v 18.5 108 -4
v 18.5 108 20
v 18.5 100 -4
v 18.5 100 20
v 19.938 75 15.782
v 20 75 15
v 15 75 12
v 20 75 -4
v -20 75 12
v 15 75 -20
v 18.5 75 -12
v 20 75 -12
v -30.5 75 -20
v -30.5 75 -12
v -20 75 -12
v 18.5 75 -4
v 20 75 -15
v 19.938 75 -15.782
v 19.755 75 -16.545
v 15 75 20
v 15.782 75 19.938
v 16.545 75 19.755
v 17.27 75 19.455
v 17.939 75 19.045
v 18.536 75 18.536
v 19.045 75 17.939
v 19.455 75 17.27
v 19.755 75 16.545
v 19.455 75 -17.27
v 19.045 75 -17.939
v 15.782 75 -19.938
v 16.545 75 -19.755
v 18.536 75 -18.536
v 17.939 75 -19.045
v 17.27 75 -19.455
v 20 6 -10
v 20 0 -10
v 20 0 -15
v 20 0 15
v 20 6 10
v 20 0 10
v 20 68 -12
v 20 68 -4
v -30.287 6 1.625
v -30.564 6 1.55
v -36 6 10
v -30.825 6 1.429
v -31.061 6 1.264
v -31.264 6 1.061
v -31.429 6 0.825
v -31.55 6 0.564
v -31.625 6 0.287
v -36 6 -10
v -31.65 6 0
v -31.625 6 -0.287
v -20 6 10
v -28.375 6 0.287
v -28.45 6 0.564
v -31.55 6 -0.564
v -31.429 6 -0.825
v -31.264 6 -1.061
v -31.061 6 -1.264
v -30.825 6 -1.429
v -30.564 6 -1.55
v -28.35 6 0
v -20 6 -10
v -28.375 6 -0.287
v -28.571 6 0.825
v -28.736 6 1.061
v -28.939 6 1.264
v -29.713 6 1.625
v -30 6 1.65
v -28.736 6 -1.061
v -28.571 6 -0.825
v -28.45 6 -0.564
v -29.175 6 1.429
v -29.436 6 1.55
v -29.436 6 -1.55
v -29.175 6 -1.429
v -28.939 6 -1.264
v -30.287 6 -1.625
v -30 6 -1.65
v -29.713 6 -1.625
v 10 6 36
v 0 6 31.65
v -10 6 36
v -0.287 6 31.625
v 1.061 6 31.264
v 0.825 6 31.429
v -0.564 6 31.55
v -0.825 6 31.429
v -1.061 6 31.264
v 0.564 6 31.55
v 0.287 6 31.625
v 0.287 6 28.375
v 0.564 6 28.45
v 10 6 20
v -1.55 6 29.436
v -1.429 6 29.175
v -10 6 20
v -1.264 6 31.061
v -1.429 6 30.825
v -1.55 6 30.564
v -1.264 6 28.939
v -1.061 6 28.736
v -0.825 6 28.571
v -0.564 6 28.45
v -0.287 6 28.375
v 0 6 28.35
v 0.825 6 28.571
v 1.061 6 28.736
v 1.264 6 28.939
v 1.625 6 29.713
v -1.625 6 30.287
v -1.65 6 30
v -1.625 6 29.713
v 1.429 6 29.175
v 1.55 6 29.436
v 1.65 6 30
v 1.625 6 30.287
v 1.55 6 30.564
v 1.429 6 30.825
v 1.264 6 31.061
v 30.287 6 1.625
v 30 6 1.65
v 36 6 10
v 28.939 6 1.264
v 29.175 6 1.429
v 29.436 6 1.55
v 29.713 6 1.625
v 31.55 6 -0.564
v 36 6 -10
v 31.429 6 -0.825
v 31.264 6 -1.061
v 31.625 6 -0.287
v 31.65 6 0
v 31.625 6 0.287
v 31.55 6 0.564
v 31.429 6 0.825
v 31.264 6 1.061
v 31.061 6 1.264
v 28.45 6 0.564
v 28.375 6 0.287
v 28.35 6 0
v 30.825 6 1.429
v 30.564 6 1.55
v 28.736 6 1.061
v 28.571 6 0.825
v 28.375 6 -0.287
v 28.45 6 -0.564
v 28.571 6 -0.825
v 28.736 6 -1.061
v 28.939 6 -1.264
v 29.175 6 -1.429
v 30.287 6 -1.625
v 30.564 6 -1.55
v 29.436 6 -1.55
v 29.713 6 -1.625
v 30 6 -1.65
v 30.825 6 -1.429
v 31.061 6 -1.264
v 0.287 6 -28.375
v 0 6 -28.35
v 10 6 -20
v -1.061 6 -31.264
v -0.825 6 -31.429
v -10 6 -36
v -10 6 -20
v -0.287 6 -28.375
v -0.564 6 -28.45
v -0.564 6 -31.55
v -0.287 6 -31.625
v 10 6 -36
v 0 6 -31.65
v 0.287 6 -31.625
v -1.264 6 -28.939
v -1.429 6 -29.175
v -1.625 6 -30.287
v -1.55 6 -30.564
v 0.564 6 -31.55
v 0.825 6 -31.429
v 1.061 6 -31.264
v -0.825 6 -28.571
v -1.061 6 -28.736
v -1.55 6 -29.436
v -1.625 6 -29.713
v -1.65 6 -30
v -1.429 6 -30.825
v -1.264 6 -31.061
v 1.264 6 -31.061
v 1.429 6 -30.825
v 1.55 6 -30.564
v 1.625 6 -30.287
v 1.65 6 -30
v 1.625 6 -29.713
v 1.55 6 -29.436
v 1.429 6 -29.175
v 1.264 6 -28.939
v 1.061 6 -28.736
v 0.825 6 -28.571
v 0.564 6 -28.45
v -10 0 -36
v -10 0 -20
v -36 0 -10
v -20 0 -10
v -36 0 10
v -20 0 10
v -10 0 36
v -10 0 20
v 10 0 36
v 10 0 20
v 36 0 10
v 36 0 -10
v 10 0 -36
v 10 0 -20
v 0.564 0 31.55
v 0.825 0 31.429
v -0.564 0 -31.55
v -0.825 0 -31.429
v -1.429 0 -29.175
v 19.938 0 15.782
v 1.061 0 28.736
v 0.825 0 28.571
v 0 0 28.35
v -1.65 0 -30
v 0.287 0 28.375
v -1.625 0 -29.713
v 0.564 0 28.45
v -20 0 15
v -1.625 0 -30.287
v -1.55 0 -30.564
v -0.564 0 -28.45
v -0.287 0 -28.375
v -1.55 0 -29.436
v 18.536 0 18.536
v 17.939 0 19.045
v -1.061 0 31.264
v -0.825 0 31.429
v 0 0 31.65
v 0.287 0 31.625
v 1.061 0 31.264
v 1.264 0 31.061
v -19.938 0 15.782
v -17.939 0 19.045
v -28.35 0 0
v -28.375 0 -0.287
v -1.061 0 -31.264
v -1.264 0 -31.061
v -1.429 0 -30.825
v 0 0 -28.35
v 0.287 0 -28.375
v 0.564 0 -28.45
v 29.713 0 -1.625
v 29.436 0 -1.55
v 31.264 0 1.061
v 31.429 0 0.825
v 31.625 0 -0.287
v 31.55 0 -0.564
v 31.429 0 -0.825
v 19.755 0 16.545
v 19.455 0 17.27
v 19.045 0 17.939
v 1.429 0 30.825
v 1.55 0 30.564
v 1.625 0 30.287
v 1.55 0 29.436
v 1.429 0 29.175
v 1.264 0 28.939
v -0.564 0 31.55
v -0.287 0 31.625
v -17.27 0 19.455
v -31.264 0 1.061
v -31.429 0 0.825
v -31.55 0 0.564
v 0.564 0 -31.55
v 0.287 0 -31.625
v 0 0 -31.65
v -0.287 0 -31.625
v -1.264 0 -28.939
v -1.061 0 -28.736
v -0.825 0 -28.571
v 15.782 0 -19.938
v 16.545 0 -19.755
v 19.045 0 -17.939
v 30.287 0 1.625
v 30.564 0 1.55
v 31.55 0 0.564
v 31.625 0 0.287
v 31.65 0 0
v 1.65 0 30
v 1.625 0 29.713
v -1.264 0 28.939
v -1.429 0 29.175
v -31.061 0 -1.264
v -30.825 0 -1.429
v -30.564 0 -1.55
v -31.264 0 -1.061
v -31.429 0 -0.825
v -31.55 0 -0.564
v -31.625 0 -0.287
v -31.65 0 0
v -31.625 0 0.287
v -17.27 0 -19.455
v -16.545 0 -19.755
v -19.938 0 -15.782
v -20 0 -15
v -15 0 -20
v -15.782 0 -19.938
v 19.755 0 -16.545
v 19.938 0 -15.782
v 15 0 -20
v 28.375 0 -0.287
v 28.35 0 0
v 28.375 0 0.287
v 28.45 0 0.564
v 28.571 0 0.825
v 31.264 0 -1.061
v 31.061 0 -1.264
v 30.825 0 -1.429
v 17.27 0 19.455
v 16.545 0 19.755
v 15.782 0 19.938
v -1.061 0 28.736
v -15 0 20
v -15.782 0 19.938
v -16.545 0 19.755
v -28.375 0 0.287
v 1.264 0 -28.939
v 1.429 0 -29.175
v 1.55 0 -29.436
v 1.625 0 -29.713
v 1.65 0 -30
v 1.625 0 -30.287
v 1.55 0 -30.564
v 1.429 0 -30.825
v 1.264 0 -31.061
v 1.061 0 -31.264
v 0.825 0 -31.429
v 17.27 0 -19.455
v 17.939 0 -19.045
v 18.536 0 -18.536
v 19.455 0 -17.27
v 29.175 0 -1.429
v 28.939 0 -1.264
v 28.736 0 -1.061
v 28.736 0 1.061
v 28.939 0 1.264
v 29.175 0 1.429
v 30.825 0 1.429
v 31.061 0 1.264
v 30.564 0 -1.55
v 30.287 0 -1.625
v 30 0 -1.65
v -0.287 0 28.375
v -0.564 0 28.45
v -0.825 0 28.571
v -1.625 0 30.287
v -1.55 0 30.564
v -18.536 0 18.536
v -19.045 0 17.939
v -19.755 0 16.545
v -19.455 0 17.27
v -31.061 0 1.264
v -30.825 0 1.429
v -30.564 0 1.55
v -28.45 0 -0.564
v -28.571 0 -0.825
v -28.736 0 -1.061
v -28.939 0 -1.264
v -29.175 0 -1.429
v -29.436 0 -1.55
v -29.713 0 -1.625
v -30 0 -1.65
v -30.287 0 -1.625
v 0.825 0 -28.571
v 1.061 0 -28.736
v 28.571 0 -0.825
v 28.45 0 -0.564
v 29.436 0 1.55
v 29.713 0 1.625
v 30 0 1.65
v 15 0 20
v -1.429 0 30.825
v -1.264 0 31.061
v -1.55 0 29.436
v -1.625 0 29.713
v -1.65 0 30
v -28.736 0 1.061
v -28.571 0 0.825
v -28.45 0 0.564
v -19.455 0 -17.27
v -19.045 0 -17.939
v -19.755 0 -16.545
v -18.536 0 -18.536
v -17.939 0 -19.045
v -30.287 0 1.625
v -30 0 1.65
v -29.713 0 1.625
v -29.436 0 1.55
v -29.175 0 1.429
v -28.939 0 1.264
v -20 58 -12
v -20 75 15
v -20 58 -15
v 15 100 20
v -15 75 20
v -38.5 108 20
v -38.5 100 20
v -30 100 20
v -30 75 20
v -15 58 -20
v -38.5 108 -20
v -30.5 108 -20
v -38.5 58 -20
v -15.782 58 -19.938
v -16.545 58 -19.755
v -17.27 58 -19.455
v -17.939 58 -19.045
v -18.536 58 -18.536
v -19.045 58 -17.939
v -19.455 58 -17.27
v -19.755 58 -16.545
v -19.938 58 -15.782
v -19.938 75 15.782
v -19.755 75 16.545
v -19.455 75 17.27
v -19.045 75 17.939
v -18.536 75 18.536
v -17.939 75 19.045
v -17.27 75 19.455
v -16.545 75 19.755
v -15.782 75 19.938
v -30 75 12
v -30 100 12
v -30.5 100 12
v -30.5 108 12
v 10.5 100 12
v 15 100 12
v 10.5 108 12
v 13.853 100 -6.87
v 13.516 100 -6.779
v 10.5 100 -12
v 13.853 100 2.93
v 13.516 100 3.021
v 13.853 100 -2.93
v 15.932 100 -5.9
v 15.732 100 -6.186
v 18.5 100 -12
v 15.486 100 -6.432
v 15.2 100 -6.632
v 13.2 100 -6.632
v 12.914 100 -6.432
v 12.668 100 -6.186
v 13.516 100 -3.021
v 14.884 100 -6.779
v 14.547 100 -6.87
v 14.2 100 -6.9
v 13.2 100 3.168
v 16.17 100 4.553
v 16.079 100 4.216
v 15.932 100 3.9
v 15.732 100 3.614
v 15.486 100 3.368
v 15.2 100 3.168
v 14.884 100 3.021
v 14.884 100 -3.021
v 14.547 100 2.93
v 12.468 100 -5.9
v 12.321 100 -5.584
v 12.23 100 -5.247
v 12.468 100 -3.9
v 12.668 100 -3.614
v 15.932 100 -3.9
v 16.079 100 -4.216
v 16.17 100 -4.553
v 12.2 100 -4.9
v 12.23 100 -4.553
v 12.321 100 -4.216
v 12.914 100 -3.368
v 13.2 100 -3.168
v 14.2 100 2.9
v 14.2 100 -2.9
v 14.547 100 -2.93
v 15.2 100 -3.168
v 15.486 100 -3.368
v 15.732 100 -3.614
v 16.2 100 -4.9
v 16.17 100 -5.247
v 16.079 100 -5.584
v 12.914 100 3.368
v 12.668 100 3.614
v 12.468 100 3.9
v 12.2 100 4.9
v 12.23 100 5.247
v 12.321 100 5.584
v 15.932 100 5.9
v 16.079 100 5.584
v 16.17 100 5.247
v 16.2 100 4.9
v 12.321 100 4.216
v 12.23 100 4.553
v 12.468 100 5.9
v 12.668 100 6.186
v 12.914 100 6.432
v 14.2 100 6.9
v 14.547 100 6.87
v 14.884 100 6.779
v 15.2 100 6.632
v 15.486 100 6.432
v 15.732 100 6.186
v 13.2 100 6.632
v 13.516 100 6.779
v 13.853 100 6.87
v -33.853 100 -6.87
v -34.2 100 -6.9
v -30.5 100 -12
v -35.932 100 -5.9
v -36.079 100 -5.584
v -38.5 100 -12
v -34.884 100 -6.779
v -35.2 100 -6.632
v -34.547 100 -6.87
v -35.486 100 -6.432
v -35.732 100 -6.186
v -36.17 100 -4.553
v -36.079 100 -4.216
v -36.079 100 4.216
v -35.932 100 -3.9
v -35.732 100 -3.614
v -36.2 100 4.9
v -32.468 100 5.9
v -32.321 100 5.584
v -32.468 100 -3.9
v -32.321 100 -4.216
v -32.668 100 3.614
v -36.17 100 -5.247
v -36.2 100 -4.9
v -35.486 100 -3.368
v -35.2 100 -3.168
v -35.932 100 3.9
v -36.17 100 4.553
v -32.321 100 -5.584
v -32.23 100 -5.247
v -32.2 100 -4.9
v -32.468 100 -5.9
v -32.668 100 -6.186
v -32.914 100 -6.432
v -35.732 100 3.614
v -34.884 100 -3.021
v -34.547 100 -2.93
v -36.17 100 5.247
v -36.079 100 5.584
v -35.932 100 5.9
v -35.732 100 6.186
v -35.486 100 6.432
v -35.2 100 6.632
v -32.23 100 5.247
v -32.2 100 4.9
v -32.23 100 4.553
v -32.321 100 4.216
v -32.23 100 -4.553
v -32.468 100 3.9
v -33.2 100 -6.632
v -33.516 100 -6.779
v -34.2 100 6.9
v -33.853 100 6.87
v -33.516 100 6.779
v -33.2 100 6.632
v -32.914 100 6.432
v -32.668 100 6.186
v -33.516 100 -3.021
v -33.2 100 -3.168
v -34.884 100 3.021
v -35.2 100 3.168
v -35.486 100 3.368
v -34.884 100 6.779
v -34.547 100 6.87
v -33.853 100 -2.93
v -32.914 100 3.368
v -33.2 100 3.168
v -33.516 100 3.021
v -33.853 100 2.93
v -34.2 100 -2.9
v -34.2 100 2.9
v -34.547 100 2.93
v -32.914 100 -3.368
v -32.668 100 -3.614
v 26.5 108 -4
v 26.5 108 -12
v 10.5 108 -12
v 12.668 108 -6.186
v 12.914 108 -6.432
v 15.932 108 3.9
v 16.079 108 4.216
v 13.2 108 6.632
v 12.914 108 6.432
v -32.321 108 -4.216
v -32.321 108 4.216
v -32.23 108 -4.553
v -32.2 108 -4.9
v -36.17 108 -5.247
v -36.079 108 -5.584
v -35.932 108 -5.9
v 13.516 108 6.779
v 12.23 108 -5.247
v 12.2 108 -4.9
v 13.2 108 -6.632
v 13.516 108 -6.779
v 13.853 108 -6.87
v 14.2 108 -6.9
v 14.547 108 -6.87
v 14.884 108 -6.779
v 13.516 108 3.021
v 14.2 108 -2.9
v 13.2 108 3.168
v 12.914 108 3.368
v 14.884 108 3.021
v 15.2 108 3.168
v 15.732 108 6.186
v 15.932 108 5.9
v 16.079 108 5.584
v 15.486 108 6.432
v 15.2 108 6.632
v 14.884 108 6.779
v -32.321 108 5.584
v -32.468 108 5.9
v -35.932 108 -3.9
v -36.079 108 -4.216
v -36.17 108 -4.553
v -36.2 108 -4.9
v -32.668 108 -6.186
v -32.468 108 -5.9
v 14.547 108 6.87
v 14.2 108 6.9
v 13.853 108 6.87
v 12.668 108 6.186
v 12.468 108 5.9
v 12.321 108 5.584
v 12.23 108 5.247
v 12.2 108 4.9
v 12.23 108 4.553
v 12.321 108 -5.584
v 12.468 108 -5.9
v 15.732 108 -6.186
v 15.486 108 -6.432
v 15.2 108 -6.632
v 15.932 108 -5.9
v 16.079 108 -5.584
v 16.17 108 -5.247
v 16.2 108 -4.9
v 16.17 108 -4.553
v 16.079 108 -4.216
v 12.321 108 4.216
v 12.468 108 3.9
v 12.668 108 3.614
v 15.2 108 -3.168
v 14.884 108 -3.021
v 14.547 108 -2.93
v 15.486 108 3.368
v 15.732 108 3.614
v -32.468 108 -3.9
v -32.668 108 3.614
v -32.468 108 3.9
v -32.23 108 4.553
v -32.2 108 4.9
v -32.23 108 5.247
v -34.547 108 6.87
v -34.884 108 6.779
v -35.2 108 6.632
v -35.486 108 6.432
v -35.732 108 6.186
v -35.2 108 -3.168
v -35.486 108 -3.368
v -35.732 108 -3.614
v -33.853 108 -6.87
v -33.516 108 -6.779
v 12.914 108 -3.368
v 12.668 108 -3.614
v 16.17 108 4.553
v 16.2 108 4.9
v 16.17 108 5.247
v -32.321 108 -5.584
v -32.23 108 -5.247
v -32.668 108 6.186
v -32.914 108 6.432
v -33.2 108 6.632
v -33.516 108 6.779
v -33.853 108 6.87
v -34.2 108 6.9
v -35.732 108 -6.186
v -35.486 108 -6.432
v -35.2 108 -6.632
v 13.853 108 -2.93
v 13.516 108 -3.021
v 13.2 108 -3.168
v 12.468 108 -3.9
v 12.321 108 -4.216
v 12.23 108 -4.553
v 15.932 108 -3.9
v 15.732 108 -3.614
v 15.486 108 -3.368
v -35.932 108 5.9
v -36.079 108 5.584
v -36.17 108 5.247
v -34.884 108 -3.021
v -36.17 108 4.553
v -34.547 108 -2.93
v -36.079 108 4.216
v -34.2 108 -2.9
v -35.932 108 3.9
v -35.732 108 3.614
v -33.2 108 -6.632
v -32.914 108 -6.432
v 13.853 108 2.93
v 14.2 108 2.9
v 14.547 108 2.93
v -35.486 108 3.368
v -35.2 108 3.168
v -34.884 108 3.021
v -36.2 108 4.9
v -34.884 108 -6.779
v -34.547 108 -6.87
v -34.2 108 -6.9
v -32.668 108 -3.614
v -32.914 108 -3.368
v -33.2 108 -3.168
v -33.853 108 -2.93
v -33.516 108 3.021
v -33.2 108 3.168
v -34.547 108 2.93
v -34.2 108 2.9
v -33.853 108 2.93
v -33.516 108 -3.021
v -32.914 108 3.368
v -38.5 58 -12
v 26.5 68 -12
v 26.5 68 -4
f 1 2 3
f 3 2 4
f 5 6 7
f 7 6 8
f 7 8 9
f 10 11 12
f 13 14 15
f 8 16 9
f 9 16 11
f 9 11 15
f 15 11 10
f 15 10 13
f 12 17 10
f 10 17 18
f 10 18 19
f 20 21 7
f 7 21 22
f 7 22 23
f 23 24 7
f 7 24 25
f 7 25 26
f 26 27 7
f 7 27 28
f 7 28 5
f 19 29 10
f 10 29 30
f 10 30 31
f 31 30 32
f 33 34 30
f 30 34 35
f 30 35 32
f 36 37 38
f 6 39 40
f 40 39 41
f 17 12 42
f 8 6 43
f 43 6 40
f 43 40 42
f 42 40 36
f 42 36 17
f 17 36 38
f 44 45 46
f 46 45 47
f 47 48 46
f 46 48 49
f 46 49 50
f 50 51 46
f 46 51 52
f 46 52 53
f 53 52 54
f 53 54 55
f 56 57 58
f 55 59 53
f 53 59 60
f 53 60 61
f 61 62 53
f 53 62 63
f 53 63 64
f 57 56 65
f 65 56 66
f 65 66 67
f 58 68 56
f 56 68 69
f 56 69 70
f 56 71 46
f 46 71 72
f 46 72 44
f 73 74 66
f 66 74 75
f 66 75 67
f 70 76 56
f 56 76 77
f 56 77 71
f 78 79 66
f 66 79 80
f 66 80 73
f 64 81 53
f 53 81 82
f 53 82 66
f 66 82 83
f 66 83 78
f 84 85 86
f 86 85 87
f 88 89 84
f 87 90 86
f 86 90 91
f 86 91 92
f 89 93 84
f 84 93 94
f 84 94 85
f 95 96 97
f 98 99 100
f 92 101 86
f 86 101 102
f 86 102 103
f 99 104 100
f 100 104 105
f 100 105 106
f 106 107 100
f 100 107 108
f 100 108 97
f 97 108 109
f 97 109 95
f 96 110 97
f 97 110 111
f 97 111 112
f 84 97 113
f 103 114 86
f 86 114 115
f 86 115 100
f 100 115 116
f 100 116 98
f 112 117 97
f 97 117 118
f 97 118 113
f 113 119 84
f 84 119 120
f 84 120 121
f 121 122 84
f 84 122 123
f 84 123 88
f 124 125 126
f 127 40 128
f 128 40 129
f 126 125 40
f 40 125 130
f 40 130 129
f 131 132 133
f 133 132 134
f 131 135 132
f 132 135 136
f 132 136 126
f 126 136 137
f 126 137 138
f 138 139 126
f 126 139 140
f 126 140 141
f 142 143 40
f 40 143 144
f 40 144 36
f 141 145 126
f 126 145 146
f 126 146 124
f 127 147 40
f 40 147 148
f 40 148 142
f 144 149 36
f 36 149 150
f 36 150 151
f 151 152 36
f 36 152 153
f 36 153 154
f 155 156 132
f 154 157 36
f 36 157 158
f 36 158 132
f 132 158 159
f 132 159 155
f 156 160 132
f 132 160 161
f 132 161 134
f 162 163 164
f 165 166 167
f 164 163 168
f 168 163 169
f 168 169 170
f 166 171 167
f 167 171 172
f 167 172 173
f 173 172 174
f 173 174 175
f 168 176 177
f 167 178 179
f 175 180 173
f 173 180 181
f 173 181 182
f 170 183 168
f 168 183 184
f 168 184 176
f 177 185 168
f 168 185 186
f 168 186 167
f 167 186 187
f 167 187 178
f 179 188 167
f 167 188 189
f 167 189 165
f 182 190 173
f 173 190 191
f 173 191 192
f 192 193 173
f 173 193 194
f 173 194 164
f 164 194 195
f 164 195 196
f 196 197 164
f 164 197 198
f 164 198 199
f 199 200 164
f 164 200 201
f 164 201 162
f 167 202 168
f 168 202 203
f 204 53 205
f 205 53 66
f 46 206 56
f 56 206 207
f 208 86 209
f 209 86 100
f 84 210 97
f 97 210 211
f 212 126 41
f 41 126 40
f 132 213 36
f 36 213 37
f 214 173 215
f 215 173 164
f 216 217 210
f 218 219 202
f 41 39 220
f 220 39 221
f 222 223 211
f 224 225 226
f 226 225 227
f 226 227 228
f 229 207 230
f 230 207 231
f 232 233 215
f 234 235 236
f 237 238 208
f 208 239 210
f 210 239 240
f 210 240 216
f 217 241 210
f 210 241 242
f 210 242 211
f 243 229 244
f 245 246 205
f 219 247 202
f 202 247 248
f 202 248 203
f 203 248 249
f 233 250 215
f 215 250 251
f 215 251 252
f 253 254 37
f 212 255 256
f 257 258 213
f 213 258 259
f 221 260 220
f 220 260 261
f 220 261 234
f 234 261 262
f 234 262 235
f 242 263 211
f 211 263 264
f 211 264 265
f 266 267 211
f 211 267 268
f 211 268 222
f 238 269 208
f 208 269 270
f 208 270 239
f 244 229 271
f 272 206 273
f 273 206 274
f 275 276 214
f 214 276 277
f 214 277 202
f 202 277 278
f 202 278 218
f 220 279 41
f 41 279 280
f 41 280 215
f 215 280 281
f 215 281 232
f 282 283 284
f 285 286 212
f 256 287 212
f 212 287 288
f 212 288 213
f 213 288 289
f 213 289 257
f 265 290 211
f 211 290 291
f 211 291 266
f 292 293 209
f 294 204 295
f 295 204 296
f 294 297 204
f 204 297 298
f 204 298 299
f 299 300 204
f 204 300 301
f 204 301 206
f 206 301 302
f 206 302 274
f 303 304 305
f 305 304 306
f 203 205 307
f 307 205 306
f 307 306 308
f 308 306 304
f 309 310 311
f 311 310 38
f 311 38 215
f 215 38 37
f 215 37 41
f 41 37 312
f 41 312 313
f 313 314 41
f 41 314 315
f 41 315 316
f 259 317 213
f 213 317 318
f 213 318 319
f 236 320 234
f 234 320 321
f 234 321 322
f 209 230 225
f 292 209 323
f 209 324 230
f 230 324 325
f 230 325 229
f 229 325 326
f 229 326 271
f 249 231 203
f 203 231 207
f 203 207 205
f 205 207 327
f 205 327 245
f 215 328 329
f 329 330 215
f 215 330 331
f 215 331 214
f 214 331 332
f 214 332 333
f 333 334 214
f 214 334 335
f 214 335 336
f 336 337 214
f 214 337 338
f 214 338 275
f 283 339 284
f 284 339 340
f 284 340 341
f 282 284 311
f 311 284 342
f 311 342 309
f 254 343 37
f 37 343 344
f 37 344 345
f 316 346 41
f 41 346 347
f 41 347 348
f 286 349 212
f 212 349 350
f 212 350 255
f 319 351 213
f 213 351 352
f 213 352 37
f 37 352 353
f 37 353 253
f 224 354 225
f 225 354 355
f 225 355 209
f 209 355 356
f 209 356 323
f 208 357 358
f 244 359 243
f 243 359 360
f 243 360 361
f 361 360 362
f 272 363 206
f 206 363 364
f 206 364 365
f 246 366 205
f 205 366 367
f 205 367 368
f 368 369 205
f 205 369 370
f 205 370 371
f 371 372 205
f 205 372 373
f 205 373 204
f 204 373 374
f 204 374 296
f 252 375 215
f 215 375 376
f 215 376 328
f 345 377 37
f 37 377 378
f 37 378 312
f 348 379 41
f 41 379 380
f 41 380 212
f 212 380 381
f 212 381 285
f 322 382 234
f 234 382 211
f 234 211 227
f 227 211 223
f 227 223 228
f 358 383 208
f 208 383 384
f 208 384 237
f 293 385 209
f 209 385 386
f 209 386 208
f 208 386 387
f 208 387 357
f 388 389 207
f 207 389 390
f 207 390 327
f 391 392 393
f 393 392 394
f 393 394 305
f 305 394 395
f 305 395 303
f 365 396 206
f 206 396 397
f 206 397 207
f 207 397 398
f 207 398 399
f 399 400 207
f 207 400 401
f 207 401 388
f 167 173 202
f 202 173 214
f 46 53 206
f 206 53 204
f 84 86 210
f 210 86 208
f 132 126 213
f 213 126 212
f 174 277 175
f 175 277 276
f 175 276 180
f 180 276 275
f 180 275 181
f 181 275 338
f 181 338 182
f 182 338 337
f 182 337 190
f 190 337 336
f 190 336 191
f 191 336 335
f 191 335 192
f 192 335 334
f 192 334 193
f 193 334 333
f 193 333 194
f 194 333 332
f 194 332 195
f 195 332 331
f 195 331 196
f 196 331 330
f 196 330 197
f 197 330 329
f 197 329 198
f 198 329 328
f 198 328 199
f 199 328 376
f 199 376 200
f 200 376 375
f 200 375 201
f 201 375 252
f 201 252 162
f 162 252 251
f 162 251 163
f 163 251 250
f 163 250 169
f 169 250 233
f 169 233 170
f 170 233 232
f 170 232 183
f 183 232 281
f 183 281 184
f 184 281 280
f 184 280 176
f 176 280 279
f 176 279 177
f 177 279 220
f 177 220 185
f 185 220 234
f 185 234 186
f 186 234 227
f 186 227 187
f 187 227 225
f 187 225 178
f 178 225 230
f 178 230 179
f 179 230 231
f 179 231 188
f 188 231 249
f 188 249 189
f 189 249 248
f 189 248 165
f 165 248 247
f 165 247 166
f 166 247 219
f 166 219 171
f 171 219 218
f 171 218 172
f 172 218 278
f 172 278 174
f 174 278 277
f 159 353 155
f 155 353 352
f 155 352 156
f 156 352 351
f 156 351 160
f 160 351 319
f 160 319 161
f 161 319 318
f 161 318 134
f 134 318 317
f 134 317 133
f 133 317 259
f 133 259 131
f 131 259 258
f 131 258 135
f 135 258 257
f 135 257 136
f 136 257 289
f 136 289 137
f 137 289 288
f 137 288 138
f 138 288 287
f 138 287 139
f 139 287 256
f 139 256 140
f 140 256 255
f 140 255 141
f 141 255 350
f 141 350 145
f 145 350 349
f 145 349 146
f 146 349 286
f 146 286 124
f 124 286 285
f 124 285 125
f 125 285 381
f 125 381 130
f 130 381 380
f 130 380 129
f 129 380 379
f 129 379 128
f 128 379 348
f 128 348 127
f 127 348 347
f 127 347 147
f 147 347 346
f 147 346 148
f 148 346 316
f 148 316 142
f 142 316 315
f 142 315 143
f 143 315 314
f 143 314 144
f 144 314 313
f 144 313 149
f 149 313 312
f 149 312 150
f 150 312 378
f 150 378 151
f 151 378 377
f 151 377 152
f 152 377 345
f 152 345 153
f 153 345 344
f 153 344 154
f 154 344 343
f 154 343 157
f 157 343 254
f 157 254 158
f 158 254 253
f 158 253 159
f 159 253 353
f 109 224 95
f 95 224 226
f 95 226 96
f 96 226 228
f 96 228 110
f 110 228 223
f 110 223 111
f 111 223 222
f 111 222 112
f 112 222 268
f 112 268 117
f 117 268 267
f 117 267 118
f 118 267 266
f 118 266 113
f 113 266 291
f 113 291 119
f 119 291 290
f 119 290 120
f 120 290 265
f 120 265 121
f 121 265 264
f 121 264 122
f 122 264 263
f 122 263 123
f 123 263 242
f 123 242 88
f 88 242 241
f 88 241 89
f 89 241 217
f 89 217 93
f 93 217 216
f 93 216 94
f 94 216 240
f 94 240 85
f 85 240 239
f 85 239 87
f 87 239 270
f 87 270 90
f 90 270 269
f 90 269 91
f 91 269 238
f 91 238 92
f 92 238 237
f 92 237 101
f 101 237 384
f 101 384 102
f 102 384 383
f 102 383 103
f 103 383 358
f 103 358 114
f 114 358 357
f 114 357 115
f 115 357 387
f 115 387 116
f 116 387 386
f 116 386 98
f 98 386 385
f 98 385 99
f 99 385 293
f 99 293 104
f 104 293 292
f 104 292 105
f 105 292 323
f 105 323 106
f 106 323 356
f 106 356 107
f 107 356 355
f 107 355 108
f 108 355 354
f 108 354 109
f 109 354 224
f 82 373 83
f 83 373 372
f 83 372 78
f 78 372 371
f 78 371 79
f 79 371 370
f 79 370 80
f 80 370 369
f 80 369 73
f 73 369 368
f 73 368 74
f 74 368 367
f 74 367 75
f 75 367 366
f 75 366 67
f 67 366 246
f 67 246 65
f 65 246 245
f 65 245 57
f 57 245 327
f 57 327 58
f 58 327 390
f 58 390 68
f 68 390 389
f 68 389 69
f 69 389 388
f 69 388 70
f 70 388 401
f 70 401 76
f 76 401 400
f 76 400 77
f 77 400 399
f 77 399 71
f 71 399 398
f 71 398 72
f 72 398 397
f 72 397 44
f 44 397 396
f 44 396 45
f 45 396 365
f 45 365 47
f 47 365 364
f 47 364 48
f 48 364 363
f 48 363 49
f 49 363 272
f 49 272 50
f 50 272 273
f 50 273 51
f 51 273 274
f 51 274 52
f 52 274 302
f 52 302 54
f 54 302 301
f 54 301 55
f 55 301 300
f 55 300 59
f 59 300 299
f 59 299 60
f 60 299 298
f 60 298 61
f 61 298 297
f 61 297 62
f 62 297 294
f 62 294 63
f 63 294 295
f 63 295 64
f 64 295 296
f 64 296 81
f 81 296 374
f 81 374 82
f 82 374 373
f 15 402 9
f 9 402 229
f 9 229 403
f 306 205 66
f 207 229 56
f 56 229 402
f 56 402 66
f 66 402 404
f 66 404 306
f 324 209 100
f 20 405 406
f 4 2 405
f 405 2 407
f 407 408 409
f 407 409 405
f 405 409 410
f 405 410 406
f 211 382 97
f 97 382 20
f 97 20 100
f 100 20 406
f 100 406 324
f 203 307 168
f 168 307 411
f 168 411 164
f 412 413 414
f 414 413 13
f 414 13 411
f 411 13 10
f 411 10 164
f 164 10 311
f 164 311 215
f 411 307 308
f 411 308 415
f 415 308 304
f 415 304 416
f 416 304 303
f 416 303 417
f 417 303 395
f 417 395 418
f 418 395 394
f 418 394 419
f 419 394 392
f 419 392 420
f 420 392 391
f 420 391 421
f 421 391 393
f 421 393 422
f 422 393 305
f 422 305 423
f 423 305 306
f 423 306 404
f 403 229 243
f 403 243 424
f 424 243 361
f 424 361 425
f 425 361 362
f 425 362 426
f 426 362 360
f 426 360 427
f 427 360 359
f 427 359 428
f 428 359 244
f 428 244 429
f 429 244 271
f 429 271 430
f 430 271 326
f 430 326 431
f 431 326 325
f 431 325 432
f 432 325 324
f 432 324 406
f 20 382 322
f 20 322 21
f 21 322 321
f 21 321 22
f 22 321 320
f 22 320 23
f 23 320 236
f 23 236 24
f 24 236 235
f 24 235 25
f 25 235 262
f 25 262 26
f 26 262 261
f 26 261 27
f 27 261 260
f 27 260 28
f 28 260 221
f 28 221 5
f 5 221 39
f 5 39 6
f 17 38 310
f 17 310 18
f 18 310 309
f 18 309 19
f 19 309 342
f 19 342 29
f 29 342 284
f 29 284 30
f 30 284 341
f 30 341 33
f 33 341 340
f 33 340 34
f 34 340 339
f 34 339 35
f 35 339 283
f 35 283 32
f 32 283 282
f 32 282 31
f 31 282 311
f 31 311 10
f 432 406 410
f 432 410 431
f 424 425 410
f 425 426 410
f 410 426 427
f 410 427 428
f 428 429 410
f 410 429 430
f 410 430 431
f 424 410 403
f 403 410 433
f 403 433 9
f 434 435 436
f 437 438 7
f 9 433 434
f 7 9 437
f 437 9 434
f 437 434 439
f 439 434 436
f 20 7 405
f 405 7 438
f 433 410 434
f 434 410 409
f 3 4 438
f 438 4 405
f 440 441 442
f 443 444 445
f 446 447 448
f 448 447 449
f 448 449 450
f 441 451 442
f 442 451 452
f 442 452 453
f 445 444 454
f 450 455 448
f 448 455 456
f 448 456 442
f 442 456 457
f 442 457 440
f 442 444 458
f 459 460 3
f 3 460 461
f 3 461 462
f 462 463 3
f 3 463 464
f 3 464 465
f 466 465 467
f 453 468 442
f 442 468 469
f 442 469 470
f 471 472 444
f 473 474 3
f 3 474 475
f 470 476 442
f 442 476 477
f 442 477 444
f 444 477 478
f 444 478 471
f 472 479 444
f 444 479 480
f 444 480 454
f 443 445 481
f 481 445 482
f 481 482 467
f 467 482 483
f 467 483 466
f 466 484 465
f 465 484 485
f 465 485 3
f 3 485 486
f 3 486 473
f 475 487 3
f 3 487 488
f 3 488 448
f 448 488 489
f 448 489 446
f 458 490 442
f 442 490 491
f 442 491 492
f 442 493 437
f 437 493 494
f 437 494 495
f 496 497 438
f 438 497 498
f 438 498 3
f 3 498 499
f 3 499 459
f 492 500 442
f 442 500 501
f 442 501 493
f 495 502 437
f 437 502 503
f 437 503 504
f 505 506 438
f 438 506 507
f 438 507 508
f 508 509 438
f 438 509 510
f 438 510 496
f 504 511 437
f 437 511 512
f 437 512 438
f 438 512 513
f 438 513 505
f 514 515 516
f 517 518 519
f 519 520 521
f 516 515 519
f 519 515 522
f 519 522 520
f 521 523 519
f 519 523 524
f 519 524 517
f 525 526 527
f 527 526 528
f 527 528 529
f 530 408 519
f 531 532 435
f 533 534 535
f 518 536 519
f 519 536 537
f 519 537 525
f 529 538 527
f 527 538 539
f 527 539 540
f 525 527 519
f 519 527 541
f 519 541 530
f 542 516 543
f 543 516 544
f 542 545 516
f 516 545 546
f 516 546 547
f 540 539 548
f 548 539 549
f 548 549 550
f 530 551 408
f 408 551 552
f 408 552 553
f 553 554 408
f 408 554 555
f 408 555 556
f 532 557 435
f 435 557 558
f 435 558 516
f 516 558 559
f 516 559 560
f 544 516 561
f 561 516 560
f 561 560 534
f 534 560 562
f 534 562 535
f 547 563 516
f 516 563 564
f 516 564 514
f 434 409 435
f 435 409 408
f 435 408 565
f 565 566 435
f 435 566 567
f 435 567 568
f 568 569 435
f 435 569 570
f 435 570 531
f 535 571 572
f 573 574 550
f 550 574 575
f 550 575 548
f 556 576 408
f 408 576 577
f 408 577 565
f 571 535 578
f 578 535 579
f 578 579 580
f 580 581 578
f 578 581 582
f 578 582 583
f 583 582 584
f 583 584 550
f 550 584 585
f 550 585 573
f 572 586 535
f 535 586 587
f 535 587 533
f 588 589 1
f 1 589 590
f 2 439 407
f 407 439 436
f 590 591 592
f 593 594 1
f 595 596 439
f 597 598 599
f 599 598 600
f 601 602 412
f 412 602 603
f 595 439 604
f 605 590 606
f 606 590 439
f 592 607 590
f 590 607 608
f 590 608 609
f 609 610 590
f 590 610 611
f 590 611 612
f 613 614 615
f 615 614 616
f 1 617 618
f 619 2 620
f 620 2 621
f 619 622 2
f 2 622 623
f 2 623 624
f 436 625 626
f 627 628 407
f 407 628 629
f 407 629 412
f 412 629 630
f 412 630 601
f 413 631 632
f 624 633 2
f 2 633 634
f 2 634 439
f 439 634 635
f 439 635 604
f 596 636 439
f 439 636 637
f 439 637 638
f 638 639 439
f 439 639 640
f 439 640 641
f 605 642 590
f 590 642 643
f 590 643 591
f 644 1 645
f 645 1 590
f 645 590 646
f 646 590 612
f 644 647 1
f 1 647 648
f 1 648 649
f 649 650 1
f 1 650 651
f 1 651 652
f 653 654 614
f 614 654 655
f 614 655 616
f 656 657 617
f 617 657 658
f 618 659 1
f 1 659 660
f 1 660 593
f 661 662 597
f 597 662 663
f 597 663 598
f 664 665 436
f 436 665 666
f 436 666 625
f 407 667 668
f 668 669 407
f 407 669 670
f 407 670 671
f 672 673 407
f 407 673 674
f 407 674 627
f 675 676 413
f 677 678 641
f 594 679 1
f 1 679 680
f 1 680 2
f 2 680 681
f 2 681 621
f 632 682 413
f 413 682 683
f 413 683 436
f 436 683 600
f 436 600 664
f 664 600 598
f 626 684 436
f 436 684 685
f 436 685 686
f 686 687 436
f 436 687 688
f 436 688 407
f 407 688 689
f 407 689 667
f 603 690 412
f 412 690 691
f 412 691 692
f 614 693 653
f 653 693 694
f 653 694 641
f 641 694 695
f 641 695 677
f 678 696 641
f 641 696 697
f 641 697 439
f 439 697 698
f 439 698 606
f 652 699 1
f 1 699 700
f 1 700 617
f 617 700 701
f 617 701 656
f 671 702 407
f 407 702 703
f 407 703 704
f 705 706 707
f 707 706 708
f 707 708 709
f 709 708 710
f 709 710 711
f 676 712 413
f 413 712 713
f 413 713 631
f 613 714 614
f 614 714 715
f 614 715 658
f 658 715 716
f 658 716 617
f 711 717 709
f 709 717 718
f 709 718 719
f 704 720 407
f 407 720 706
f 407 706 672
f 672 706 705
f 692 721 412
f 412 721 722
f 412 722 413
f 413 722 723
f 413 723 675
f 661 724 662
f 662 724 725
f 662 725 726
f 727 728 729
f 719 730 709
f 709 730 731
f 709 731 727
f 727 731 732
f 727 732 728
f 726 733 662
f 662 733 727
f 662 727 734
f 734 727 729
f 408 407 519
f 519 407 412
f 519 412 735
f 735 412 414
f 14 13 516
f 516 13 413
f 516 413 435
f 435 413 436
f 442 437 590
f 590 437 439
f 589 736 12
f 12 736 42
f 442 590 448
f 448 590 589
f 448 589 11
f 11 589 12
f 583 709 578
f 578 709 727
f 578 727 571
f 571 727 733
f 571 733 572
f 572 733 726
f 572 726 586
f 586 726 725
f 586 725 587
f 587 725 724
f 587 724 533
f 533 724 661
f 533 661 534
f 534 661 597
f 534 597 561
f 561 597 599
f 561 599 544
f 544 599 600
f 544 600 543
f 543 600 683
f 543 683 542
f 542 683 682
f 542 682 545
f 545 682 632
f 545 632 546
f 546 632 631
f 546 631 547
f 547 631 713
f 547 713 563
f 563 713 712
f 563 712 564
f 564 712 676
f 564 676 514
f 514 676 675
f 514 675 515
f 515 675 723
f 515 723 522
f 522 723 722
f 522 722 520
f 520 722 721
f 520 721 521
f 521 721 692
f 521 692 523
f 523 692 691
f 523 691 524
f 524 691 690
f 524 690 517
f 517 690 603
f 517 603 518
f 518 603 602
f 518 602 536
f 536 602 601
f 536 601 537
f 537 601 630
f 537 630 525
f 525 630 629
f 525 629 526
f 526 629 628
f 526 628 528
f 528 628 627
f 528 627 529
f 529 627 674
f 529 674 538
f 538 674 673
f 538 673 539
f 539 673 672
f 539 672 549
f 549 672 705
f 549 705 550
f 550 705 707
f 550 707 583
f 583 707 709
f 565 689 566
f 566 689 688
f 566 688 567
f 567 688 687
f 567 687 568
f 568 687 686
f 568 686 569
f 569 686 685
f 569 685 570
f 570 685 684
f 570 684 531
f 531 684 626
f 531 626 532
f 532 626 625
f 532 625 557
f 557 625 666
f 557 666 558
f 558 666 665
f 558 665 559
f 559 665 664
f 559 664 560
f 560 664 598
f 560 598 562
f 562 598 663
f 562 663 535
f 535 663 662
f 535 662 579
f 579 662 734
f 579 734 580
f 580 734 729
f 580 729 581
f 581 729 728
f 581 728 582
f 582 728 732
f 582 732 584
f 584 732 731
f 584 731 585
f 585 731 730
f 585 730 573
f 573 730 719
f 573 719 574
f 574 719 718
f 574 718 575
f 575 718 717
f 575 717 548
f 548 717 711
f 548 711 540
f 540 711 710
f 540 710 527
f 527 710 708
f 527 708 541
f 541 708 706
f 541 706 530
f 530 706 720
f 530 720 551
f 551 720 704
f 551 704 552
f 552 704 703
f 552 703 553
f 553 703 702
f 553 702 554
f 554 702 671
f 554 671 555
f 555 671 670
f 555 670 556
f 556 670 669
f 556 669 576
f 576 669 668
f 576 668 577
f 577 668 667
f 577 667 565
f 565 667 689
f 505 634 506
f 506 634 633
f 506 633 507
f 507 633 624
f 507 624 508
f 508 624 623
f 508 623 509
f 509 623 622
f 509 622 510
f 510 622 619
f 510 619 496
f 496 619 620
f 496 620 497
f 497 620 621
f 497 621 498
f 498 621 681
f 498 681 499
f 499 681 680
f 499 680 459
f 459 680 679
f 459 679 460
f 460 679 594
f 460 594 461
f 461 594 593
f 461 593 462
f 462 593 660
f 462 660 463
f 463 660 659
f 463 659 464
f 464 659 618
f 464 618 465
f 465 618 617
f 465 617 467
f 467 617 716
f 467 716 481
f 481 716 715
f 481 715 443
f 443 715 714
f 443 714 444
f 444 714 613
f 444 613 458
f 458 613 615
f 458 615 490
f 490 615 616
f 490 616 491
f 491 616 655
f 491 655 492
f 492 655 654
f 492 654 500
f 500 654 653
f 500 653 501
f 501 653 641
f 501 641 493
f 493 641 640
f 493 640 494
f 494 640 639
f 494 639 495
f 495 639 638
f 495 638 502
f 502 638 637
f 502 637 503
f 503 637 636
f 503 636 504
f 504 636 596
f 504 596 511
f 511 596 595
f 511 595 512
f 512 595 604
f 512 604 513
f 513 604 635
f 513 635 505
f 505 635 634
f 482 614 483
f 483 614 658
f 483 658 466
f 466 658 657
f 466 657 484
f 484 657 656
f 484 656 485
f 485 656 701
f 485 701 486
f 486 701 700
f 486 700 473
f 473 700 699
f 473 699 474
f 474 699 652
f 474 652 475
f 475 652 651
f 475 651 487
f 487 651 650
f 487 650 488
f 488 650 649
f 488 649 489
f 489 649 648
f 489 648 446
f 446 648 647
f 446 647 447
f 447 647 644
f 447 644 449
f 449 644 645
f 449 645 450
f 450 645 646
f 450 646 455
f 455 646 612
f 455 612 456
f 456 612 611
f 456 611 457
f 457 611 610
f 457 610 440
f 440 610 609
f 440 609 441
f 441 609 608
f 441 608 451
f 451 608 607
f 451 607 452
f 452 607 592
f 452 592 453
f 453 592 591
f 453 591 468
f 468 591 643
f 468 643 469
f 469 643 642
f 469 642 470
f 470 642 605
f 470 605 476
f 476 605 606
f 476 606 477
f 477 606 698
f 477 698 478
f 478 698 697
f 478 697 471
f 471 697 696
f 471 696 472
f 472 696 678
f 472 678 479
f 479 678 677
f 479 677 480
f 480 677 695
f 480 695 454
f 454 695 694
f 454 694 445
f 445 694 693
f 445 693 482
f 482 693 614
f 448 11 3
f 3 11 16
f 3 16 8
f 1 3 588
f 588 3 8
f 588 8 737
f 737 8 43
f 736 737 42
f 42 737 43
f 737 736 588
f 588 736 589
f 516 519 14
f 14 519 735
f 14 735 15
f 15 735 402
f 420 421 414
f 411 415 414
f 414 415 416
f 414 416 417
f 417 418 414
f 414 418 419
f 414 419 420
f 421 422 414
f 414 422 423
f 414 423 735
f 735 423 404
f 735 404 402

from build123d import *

# Parameters (mm, degrees)
SKETCH_1_R      = 1.65
EXTRUDE_1_DEPTH = 6
EXTRUDE_2_DEPTH = 75
EXTRUDE_START   = 25
SKETCH_3_R      = 2
EXTRUDE_3_DEPTH = 8
EXTRUDE_4_REACH = 93.669
SKETCH_5_W      = 45
SKETCH_5_H      = 8
EXTRUDE_START_2 = 33
SKETCH_6_W      = 8
SKETCH_6_H      = 8
EXTRUDE_5_DEPTH = 40
SKETCH_7_W      = 8
SKETCH_7_H      = 8
EXTRUDE_6_DEPTH = 50
SKETCH_8_W      = 8
SKETCH_8_H      = 17
EXTRUDE_7_DEPTH = 40


with BuildPart() as part:
    # 草图1 → 凸台-拉伸1 (new body)
    with BuildSketch(Plane(origin=(0, 0, 0), x_dir=(1, 0, 0), z_dir=(0, 1, 0))):
        Polygon((-10, 36), (-10, 10), (-36, 10), (-36, -10), (-10, -10), (-10, -36), (10, -36), (10, -10), (36, -10), (36, 10), (10, 10), (10, 36), align=None)
        with Locations(Location((0, 30, 0), (0, 0, 270))):
            Circle(SKETCH_1_R, mode=Mode.SUBTRACT)
        with Locations(Location((30, 0, 0), (0, 0, 270))):
            Circle(SKETCH_1_R, mode=Mode.SUBTRACT)
        with Locations(Location((0, -30, 0), (0, 0, 270))):
            Circle(SKETCH_1_R, mode=Mode.SUBTRACT)
        with Locations(Location((-30, 0, 0), (0, 0, 270))):
            Circle(SKETCH_1_R, mode=Mode.SUBTRACT)
    extrude(amount=EXTRUDE_1_DEPTH)

    # 草图2 → 凸台-拉伸2 (add)
    with BuildSketch(Plane(origin=(0, 0, 0), x_dir=(1, 0, 0), z_dir=(0, 1, 0))):
        with BuildLine():
            Line((-15, 20), (15, 20))
            ThreePointArc((15, 20), (18.535533906, 18.535533906), (20, 15))
            Line((20, 15), (20, -15))
            ThreePointArc((20, -15), (18.535533906, -18.535533906), (15, -20))
            Line((15, -20), (-15, -20))
            ThreePointArc((-15, -20), (-18.535533906, -18.535533906), (-20, -15))
            Line((-20, -15), (-20, 15))
            ThreePointArc((-20, 15), (-18.535533906, 18.535533906), (-15, 20))
        make_face()
    extrude(amount=EXTRUDE_2_DEPTH)


with BuildPart() as body_2:
    # 草图3 → 凸台-拉伸3 (new body)
    with BuildSketch(Plane(origin=(0, 75, 0), x_dir=(1, 0, 0), z_dir=(0, 1, 0)).offset(EXTRUDE_START)):
        Polygon((-38.5, -20), (18.5, -20), (18.5, 12), (10.5, 12), (10.5, -12), (-30.5, -12), (-30.5, 12), (-38.5, 12), align=None)
        with Locations(Location((-34.2, -4.9, 0), (0, 0, 90))):
            Circle(SKETCH_3_R, mode=Mode.SUBTRACT)
        with Locations(Location((-34.2, 4.9, 0), (0, 0, 90))):
            Circle(SKETCH_3_R, mode=Mode.SUBTRACT)
        with Locations(Location((14.2, -4.9, 0), (0, 0, 90))):
            Circle(SKETCH_3_R, mode=Mode.SUBTRACT)
        with Locations(Location((14.2, 4.9, 0), (0, 0, 90))):
            Circle(SKETCH_3_R, mode=Mode.SUBTRACT)
    extrude(amount=EXTRUDE_3_DEPTH)

    # 草图5 → 凸台-拉伸4 (add, up to next)
    with BuildSketch(Plane(origin=(0, 75, 0), x_dir=(1, 0, 0), z_dir=(0, 1, 0)), mode=Mode.PRIVATE) as extrude_4_sk1:
        with Locations((-7.5, -16)):
            Rectangle(SKETCH_5_W, SKETCH_5_H)
    extrude_4_tool1 = extrude(extrude_4_sk1.sketch, amount=EXTRUDE_4_REACH, mode=Mode.PRIVATE) - body_2.part

    add(part.part)  # 凸台-拉伸4 merges part
    add(extrude_4_tool1.solids().sort_by_distance((-7.5, 75, 16))[0])

    # 草图6 → 凸台-拉伸5 (add)
    with BuildSketch(Plane(origin=(0, 75, 0), x_dir=(1, 0, 0), z_dir=(0, 1, 0)).offset(EXTRUDE_START_2)):
        with Locations((22.5, 8)):
            Rectangle(SKETCH_6_W, SKETCH_6_H)
    extrude(amount=-EXTRUDE_5_DEPTH)

    # 草图7 → 凸台-拉伸6 (add)
    with BuildSketch(Plane(origin=(0, 108, 0), x_dir=(1, 0, 0), z_dir=(0, 1, 0))):
        with Locations((-34.5, 16)):
            Rectangle(SKETCH_7_W, SKETCH_7_H)
    extrude(amount=-EXTRUDE_6_DEPTH)

    # 草图8 → 凸台-拉伸7 (add)
    with BuildSketch(Plane.ZY.offset(38.5)):
        with Locations((-16, 66.5)):
            Rectangle(SKETCH_8_W, SKETCH_8_H)
    extrude(amount=-EXTRUDE_7_DEPTH)


solid = body_2.part
